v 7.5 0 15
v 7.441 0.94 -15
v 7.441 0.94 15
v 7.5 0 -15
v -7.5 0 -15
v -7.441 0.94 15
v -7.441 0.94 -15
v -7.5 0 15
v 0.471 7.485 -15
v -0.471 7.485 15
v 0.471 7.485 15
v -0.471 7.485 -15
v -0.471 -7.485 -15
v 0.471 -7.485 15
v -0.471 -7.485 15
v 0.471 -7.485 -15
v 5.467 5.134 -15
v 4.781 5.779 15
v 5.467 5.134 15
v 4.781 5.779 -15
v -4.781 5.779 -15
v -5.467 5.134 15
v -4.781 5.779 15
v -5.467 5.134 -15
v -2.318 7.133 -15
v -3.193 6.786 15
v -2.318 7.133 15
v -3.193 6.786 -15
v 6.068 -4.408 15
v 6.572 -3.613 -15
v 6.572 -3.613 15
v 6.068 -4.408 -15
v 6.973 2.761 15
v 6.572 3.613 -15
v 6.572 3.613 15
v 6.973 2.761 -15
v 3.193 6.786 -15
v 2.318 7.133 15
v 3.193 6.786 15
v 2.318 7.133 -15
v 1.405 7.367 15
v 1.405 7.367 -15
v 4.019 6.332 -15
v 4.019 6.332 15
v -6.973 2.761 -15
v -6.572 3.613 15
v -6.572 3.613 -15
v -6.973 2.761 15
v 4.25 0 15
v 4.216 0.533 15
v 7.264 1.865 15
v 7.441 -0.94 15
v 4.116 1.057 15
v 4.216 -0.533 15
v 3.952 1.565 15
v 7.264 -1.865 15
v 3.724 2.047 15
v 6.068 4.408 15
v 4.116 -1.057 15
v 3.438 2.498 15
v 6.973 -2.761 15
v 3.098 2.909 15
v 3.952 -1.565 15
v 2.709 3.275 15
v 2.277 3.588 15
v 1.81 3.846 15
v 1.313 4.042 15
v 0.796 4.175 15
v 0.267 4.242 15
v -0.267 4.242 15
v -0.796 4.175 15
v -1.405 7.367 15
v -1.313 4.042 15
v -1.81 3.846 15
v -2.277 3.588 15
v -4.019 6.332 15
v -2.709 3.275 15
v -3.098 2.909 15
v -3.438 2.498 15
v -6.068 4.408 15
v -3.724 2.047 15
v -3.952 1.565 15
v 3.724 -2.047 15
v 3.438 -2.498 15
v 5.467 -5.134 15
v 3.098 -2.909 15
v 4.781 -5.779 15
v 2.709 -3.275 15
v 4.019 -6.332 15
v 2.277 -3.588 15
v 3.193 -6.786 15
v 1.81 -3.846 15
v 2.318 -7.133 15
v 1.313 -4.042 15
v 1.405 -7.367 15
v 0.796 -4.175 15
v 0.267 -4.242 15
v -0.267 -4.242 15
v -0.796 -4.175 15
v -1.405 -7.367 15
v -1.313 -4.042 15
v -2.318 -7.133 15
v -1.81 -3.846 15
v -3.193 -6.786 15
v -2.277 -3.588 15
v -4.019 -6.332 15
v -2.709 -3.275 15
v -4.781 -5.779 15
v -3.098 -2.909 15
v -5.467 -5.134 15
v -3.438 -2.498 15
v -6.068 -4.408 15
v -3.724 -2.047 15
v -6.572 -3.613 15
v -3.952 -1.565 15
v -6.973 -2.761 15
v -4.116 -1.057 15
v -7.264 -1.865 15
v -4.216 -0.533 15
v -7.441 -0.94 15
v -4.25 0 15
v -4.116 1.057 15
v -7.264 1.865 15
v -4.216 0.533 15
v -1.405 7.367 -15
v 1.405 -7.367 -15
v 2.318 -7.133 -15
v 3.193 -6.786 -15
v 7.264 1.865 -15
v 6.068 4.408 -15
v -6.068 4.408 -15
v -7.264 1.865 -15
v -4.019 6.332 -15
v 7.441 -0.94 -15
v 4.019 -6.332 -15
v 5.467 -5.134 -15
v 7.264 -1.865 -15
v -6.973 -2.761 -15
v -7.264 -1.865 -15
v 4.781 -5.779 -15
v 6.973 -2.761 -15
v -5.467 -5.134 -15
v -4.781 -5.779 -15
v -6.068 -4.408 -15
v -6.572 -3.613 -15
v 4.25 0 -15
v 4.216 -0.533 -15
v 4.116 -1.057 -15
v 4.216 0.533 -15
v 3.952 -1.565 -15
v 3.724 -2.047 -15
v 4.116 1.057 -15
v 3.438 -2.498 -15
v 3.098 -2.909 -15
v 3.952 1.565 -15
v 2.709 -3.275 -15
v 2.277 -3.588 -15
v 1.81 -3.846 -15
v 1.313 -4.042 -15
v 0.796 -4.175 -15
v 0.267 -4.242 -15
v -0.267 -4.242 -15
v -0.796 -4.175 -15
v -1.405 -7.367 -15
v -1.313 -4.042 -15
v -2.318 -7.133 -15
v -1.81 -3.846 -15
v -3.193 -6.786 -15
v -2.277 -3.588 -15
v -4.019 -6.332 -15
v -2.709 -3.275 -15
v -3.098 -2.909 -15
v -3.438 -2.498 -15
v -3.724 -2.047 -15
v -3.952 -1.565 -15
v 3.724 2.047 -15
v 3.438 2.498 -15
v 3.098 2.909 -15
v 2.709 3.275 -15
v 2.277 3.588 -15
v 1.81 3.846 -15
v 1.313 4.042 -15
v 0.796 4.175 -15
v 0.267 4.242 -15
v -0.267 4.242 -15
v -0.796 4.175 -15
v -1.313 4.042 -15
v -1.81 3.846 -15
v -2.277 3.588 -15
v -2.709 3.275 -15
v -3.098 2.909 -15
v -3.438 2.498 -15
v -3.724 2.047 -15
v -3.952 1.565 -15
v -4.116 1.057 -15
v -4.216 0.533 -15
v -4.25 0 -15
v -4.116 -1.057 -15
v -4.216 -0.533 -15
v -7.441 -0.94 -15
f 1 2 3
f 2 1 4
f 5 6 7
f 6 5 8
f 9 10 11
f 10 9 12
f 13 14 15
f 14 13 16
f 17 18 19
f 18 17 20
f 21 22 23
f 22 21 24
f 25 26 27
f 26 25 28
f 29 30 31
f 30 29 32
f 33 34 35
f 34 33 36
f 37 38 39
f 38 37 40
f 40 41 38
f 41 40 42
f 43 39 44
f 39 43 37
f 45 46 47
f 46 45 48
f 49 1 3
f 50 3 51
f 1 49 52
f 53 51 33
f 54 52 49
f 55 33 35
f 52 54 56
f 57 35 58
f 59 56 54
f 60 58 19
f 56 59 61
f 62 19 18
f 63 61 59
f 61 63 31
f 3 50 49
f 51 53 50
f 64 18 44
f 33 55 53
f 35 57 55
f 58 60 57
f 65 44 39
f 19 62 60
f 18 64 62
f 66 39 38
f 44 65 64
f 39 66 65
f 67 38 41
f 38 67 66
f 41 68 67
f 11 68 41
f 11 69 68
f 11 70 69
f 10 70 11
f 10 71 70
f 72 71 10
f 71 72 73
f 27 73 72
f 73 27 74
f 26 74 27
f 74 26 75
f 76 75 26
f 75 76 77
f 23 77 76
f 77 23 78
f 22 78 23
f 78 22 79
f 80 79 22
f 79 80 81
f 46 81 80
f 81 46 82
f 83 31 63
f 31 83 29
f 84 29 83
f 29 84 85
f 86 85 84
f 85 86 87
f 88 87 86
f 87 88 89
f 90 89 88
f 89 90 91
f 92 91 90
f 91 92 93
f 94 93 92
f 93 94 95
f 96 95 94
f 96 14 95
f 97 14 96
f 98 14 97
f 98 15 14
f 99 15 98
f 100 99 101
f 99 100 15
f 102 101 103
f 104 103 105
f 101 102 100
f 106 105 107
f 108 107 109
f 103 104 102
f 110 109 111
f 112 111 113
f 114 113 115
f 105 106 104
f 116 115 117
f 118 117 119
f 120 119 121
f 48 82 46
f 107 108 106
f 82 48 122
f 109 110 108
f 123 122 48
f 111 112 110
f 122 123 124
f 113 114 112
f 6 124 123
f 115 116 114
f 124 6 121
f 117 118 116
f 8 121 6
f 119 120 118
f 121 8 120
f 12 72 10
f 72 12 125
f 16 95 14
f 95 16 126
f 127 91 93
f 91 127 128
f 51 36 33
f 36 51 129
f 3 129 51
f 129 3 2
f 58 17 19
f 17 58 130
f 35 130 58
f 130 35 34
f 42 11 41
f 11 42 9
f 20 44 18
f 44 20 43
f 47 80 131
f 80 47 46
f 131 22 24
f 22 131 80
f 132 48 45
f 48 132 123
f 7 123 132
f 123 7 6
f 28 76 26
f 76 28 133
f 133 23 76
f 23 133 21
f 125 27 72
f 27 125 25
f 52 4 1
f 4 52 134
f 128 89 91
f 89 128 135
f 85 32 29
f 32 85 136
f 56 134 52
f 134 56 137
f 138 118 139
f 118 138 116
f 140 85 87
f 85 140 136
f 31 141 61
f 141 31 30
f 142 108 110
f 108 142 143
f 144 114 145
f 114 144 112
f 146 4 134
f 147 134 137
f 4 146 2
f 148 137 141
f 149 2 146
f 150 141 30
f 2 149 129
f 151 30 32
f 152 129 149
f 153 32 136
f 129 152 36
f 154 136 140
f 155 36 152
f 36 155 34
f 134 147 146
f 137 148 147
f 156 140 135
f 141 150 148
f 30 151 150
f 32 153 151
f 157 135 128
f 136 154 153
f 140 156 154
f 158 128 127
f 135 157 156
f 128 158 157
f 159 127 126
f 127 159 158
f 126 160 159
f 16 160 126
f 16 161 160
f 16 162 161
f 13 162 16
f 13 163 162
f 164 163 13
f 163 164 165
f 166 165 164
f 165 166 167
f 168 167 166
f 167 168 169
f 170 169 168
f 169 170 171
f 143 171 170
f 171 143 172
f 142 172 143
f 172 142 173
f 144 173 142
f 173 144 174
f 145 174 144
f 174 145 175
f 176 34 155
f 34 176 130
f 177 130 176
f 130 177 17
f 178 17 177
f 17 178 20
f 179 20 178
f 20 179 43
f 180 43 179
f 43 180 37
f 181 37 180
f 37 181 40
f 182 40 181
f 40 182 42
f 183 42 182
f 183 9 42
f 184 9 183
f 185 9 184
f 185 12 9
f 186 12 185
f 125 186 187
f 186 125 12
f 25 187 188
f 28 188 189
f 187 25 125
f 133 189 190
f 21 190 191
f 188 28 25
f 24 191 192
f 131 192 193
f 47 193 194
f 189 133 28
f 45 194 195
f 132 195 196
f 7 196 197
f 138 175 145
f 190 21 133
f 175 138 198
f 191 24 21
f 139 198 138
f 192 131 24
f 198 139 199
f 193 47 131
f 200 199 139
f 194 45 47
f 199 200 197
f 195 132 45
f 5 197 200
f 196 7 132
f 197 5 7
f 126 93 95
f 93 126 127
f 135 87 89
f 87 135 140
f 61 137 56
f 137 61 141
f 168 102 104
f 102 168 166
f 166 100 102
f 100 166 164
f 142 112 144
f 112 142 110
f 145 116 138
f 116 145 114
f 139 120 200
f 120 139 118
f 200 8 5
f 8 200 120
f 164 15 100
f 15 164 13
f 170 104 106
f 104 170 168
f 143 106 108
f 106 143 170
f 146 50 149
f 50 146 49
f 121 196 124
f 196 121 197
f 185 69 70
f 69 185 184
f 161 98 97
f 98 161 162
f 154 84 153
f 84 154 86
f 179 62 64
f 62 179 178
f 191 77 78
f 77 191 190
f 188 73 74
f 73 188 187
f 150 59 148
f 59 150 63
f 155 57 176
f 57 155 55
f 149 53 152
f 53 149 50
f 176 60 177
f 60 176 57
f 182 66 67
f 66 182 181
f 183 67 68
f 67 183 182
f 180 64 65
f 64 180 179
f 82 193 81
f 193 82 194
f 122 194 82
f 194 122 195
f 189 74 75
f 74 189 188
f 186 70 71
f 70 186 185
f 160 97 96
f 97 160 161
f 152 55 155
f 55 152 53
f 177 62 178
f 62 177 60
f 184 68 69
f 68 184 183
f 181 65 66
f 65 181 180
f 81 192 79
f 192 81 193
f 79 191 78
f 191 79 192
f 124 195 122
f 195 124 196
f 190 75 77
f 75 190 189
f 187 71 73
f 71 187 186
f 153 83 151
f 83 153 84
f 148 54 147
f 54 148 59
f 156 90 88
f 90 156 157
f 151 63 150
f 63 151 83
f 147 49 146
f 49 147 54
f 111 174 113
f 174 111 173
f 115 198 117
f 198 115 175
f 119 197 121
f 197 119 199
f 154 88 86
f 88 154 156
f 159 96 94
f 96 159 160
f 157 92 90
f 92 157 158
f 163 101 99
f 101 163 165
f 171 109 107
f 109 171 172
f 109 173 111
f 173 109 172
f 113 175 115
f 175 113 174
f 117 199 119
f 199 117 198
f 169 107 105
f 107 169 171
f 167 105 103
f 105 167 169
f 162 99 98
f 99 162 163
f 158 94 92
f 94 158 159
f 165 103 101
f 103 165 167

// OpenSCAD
$fn = 50;


difference() {
	union() {
		translate(v = [0, 0, -15.0000000000]) {
			cylinder(h = 30, r = 7.5000000000);
		}
	}
	union() {
		translate(v = [0, 0, -100.0000000000]) {
			cylinder(h = 200, r = 4.2500000000);
		}
	}
}
